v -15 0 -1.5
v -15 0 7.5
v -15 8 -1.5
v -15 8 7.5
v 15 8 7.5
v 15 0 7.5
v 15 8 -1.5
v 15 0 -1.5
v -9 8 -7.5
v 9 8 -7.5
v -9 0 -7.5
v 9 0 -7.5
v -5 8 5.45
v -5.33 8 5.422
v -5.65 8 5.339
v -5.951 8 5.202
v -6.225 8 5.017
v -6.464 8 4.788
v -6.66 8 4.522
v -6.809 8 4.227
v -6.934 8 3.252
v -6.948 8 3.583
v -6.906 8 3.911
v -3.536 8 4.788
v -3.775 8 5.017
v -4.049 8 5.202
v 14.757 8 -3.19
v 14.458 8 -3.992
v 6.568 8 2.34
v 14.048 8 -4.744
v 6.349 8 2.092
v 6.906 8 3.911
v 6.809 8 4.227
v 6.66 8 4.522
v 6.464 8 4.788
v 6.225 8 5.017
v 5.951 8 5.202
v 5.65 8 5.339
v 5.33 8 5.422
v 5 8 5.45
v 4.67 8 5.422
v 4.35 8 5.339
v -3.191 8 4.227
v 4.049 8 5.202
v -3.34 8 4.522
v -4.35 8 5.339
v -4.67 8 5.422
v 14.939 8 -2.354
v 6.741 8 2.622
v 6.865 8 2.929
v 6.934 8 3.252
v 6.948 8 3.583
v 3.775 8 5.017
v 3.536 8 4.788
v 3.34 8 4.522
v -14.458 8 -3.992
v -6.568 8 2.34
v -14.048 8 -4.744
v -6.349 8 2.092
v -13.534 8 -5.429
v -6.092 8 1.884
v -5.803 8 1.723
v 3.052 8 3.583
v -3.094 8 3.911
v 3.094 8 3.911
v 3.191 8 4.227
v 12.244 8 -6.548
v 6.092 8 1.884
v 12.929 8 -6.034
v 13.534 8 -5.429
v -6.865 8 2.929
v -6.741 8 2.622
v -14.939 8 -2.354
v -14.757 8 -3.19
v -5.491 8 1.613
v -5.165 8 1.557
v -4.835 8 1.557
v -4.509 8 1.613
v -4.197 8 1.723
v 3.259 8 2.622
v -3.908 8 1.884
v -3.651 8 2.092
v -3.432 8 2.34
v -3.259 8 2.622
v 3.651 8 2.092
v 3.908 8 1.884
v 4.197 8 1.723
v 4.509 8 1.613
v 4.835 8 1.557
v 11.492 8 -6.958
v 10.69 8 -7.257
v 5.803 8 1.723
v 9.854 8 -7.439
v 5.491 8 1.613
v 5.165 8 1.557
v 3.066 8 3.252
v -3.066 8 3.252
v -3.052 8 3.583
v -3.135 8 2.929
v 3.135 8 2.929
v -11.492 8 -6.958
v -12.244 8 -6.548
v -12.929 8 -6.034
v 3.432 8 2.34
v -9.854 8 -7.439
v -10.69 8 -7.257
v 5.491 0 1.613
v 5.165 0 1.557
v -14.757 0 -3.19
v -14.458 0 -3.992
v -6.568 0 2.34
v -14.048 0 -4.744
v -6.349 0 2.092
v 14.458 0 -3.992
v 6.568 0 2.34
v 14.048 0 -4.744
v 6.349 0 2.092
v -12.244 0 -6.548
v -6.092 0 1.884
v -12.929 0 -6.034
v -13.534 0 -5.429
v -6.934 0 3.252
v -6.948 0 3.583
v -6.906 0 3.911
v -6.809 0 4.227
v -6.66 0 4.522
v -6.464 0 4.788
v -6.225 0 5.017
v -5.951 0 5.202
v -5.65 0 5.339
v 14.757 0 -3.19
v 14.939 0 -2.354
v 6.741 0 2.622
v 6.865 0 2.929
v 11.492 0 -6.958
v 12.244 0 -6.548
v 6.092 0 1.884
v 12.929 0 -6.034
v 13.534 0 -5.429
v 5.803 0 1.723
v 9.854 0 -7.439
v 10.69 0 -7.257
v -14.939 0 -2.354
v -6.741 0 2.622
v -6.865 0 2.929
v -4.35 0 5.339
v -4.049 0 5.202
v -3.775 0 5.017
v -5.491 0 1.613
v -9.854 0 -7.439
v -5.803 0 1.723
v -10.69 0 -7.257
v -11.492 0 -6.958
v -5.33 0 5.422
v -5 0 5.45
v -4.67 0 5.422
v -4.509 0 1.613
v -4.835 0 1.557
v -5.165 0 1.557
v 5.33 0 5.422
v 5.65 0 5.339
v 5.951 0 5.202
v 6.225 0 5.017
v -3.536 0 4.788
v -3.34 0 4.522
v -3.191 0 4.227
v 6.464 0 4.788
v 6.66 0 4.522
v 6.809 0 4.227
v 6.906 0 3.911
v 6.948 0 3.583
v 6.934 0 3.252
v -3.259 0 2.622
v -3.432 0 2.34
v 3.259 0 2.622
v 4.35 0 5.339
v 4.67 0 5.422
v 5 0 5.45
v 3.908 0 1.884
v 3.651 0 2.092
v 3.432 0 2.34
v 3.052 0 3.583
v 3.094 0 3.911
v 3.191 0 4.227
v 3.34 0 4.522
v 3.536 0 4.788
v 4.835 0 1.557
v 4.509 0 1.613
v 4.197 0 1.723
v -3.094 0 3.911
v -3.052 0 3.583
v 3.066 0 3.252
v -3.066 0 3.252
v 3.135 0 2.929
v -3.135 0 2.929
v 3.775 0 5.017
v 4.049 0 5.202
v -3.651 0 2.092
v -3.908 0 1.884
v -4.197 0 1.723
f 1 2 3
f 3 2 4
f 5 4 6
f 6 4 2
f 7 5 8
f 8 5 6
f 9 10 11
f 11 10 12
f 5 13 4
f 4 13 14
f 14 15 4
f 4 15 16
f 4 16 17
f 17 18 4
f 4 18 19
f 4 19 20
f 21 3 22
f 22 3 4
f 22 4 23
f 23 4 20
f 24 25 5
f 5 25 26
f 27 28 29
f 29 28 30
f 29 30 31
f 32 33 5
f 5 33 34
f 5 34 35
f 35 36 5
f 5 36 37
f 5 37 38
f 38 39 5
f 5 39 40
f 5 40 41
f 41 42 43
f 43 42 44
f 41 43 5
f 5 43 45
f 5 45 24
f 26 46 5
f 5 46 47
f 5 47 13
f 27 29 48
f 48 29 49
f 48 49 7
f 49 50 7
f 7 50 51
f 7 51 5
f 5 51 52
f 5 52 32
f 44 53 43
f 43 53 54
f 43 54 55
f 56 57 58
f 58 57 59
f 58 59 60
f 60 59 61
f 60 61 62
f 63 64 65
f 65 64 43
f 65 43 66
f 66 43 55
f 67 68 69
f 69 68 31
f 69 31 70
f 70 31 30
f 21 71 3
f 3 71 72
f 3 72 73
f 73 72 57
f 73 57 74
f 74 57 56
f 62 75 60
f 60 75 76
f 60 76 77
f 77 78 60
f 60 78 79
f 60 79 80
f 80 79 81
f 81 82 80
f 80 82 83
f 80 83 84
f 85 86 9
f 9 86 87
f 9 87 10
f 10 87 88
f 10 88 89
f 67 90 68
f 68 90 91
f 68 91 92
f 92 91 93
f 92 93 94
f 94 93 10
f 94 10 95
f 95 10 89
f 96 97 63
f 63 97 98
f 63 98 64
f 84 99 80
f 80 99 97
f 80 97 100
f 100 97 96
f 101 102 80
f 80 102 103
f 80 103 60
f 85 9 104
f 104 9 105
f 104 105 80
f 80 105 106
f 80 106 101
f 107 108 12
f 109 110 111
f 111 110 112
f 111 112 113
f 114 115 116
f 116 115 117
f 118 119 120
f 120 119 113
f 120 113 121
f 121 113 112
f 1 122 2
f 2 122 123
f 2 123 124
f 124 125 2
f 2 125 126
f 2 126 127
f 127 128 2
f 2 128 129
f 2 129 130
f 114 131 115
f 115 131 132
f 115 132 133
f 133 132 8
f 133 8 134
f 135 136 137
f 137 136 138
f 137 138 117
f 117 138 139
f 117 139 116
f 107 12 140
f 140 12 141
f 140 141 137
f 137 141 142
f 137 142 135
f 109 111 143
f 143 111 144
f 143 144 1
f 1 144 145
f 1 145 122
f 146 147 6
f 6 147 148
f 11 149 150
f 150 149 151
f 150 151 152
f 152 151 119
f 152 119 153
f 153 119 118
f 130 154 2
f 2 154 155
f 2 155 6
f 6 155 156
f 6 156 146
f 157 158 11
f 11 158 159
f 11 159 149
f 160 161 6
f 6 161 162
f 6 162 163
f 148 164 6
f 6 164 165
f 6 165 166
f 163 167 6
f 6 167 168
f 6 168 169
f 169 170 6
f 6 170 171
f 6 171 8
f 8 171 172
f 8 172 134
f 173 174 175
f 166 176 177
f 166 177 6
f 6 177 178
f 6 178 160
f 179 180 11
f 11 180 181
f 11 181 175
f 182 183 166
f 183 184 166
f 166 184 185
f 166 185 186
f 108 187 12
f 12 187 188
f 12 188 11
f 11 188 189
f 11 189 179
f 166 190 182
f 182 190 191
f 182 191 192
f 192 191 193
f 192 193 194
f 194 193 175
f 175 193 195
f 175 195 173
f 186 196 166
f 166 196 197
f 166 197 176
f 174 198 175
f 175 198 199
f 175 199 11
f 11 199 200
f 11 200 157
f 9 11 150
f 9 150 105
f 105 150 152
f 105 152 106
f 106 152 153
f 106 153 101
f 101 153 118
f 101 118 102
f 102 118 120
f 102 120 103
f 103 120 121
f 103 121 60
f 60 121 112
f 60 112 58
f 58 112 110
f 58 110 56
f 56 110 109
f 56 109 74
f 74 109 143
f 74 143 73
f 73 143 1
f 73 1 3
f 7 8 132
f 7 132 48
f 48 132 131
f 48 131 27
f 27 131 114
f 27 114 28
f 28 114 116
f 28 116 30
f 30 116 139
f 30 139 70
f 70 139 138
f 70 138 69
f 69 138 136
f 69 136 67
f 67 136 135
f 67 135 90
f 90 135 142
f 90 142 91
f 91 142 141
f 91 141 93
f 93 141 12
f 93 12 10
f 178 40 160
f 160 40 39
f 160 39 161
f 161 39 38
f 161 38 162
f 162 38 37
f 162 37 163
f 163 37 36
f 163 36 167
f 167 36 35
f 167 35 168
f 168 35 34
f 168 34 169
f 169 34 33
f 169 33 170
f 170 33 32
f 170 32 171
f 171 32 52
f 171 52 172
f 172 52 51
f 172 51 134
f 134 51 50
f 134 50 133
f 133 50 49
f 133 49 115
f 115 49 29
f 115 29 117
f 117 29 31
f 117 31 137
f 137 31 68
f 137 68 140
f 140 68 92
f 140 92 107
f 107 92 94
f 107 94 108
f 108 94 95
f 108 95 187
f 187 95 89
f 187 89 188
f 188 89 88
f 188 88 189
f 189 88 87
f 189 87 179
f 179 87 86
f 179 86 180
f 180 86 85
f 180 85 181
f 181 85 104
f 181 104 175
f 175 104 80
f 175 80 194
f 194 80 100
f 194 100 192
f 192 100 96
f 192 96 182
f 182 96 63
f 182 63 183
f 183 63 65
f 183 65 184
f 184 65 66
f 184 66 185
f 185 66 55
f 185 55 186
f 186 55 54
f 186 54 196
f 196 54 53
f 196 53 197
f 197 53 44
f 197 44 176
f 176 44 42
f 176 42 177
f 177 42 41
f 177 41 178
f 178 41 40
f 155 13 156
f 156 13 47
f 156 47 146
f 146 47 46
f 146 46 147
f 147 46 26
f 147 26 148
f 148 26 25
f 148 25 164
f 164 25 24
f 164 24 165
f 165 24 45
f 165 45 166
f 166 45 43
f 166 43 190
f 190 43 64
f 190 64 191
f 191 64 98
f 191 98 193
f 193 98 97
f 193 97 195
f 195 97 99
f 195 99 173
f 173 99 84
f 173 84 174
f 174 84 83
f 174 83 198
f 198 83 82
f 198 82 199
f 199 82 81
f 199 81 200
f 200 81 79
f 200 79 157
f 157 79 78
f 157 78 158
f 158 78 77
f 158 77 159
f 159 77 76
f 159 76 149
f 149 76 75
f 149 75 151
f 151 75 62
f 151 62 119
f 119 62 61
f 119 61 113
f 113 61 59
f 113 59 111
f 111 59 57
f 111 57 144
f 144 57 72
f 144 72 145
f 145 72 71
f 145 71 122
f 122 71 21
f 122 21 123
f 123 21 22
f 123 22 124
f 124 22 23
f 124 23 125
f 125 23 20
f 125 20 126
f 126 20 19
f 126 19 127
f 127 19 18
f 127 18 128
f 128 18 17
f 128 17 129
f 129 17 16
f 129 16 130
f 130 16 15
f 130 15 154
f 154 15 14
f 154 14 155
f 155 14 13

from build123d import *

# Parameters (mm, degrees)
SKETCH_1_W          = 30
SKETCH_1_H          = 15
EXTRUDE_1_DEPTH     = 8
FILLET_1_R          = 6
SKETCH_2_R          = 1.95
CUT_EXTRUDE_1_DEPTH = 19.580904176


with BuildPart() as part:
    # Эскиз1 → Бобышка-Вытянуть1 (new body)
    with BuildSketch(Plane(origin=(0, 0, 0), x_dir=(1, 0, 0), z_dir=(0, 1, 0))):
        Rectangle(SKETCH_1_W, SKETCH_1_H)
    extrude(amount=EXTRUDE_1_DEPTH)

    # Скругление1
    fillet_1_edges = [part.edges().sort_by_distance(p)[0] for p in [
        (-15, 4, -7.5),
        (15, 4, -7.5),
    ]]
    fillet(fillet_1_edges, radius=FILLET_1_R)

    # Эскиз2 → Вырез-Вытянуть1 (cut, through all)
    with BuildSketch(Plane(origin=(0, 8, 0), x_dir=(1, 0, 0), z_dir=(0, 1, 0))):
        with Locations(Location((-5, -3.5, 0), (0, 0, 270))):
            Circle(SKETCH_2_R)
        with Locations(Location((5, -3.5, 0), (0, 0, 270))):
            Circle(SKETCH_2_R)
    extrude(amount=-CUT_EXTRUDE_1_DEPTH, mode=Mode.SUBTRACT)


solid = part.part
